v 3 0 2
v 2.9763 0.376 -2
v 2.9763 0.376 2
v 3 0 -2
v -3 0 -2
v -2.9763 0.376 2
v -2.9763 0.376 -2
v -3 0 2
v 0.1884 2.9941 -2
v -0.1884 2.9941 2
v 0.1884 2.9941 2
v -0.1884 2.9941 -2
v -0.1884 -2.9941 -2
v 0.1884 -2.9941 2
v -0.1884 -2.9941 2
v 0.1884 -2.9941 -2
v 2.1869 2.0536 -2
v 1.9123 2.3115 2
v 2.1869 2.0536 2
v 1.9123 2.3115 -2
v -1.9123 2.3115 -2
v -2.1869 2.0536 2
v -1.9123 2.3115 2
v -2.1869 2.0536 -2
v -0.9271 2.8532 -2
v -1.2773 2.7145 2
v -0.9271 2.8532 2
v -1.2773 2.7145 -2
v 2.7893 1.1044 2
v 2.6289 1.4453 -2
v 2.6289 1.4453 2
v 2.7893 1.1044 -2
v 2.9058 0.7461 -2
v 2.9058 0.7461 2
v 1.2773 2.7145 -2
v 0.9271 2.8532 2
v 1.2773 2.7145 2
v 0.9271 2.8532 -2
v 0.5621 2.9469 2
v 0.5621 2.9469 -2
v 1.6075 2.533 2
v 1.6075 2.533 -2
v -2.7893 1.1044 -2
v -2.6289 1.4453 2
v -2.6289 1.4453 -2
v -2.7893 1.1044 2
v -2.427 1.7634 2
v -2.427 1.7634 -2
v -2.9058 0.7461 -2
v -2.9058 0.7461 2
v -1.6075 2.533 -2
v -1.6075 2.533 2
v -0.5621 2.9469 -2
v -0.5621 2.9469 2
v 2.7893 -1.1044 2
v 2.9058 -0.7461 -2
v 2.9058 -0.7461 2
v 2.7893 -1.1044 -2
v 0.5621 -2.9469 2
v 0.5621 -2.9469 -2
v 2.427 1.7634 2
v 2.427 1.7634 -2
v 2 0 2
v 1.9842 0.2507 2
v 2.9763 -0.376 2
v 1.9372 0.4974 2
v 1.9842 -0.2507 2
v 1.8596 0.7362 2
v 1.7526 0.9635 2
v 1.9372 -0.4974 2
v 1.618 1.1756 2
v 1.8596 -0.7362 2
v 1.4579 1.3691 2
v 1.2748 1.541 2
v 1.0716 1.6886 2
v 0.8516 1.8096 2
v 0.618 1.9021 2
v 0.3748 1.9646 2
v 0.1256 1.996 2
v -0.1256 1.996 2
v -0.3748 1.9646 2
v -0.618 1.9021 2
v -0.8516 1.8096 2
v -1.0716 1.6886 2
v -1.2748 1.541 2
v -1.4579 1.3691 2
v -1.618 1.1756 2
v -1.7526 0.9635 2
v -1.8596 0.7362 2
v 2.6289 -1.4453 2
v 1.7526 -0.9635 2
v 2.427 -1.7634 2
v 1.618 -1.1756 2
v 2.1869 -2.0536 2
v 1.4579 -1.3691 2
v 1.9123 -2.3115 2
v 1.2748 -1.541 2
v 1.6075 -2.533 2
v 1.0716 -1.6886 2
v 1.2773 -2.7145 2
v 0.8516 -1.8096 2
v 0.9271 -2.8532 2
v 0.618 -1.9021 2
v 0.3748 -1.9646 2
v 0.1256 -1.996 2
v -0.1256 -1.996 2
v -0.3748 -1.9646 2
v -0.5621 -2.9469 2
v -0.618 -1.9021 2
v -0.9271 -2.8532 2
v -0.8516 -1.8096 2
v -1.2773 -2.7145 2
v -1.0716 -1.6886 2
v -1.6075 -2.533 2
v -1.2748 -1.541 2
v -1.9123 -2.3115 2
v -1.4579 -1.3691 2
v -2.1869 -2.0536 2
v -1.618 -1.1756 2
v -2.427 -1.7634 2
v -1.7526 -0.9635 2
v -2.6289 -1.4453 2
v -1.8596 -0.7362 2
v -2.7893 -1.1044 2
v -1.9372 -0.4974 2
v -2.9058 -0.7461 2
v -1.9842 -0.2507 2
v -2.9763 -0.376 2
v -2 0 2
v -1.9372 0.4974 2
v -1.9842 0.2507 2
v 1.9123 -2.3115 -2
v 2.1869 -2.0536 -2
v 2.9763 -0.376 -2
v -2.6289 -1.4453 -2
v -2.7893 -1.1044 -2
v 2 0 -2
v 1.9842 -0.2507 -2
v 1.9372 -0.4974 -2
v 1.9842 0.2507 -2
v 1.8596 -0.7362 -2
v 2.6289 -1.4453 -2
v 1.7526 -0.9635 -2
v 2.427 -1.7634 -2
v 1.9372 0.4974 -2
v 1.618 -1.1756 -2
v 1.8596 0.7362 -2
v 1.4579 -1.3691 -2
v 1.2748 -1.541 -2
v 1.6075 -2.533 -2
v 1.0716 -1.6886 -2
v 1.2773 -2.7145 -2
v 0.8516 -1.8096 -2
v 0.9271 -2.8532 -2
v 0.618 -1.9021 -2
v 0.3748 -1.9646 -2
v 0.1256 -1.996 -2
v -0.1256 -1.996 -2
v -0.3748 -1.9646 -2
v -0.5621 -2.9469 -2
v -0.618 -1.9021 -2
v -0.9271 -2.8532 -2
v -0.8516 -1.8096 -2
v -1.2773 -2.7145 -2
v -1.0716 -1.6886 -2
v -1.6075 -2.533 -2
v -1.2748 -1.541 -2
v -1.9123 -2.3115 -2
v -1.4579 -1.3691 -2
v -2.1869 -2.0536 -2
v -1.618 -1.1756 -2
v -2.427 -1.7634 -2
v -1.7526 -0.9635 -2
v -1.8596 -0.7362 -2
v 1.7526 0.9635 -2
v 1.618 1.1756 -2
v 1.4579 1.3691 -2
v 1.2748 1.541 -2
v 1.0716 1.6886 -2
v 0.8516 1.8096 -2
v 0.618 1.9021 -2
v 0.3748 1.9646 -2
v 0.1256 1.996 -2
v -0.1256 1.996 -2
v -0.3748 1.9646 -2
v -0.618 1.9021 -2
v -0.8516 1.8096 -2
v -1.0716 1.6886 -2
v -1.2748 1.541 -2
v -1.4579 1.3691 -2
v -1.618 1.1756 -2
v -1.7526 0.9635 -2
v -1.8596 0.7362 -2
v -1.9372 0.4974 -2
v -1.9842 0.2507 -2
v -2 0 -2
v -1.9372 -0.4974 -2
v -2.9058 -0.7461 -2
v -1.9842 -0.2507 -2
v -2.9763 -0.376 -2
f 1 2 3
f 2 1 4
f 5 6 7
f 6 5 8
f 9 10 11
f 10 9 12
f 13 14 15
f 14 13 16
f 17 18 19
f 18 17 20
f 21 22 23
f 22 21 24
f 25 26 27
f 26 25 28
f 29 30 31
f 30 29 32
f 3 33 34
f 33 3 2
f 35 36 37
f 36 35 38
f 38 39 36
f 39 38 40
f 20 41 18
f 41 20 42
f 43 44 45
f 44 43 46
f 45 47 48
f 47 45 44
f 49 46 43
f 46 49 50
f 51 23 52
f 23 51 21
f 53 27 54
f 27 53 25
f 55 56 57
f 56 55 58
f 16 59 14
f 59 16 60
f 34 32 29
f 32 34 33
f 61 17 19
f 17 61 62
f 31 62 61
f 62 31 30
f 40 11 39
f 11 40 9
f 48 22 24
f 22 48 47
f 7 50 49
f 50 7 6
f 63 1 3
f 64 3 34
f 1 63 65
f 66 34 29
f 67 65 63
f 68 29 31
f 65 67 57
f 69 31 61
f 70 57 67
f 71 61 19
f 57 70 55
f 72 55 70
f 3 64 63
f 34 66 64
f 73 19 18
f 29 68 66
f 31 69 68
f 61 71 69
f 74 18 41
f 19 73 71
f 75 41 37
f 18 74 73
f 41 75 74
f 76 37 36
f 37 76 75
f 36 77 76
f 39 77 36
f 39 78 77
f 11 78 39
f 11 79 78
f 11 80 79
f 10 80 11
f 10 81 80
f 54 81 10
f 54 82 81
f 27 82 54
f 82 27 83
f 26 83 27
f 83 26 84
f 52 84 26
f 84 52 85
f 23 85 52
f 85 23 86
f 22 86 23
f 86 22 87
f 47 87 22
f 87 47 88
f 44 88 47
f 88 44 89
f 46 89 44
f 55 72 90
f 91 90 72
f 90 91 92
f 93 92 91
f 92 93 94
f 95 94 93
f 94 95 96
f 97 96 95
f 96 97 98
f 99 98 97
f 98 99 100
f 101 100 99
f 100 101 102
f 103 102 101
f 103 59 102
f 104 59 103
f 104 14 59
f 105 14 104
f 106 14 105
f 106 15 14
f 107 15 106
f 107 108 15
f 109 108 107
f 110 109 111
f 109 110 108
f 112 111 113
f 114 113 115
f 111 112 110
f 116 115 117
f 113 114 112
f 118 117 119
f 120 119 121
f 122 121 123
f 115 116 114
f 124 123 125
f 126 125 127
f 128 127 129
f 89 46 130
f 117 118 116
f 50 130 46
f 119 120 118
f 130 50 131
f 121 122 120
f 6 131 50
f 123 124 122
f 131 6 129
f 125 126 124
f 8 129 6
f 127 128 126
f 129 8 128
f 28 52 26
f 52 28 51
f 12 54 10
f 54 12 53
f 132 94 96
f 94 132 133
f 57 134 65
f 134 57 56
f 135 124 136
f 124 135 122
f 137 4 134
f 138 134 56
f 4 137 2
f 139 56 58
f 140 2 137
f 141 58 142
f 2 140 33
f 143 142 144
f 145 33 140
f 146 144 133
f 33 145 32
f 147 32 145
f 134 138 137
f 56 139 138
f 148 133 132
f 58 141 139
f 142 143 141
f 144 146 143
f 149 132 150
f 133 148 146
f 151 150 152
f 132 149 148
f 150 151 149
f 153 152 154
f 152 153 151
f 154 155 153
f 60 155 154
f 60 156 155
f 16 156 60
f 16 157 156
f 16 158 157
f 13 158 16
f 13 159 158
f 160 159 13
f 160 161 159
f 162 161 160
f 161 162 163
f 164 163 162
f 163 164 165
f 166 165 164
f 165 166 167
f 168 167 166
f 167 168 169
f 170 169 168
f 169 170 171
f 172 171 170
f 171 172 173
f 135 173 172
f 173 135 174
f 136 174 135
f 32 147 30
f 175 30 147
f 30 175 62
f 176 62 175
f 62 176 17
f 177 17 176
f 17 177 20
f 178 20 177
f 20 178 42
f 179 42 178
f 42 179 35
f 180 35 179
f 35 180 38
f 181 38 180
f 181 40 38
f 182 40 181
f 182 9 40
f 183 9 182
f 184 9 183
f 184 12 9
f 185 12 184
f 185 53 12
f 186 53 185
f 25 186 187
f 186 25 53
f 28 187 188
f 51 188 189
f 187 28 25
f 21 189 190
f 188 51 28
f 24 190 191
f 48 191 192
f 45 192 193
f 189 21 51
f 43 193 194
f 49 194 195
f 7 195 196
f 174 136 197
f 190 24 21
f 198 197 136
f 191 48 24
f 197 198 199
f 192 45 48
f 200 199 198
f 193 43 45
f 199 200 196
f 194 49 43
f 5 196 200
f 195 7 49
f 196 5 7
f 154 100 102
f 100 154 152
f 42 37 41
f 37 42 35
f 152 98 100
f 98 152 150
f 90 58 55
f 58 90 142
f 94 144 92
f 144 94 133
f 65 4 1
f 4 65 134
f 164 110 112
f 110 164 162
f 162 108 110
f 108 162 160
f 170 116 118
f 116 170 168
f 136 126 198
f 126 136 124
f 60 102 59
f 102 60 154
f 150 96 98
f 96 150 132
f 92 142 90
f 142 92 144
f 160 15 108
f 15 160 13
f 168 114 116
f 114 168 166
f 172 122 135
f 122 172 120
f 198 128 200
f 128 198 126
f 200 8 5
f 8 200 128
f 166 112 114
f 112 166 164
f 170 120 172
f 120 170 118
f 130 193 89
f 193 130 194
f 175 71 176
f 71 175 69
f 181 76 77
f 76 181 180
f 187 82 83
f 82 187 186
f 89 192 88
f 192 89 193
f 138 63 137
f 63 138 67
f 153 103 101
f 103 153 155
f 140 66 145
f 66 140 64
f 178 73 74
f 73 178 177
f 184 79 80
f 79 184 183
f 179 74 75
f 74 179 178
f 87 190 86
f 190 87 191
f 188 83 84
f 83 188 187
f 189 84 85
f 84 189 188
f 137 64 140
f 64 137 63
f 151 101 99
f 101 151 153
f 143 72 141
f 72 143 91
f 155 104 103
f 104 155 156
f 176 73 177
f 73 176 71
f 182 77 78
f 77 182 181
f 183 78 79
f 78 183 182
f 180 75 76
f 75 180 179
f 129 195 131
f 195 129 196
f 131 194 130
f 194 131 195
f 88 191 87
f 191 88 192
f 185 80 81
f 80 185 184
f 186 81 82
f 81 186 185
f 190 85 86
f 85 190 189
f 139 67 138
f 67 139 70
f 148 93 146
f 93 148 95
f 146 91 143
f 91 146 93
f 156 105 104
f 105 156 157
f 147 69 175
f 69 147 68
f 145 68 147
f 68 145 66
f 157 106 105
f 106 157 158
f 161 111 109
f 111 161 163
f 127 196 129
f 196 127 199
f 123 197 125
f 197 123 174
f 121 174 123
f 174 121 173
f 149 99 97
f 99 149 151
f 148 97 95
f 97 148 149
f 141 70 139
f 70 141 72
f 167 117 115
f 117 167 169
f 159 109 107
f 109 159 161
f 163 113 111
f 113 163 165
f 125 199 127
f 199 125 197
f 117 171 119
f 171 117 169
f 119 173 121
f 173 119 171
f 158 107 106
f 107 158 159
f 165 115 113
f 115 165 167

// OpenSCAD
$fn = 50;


difference() {
	union() {
		translate(v = [0, 0, -2.0000000000]) {
			cylinder(h = 4, r = 3.0000000000);
		}
	}
	union() {
		translate(v = [0, 0, -100.0000000000]) {
			cylinder(h = 200, r = 2);
		}
	}
}
